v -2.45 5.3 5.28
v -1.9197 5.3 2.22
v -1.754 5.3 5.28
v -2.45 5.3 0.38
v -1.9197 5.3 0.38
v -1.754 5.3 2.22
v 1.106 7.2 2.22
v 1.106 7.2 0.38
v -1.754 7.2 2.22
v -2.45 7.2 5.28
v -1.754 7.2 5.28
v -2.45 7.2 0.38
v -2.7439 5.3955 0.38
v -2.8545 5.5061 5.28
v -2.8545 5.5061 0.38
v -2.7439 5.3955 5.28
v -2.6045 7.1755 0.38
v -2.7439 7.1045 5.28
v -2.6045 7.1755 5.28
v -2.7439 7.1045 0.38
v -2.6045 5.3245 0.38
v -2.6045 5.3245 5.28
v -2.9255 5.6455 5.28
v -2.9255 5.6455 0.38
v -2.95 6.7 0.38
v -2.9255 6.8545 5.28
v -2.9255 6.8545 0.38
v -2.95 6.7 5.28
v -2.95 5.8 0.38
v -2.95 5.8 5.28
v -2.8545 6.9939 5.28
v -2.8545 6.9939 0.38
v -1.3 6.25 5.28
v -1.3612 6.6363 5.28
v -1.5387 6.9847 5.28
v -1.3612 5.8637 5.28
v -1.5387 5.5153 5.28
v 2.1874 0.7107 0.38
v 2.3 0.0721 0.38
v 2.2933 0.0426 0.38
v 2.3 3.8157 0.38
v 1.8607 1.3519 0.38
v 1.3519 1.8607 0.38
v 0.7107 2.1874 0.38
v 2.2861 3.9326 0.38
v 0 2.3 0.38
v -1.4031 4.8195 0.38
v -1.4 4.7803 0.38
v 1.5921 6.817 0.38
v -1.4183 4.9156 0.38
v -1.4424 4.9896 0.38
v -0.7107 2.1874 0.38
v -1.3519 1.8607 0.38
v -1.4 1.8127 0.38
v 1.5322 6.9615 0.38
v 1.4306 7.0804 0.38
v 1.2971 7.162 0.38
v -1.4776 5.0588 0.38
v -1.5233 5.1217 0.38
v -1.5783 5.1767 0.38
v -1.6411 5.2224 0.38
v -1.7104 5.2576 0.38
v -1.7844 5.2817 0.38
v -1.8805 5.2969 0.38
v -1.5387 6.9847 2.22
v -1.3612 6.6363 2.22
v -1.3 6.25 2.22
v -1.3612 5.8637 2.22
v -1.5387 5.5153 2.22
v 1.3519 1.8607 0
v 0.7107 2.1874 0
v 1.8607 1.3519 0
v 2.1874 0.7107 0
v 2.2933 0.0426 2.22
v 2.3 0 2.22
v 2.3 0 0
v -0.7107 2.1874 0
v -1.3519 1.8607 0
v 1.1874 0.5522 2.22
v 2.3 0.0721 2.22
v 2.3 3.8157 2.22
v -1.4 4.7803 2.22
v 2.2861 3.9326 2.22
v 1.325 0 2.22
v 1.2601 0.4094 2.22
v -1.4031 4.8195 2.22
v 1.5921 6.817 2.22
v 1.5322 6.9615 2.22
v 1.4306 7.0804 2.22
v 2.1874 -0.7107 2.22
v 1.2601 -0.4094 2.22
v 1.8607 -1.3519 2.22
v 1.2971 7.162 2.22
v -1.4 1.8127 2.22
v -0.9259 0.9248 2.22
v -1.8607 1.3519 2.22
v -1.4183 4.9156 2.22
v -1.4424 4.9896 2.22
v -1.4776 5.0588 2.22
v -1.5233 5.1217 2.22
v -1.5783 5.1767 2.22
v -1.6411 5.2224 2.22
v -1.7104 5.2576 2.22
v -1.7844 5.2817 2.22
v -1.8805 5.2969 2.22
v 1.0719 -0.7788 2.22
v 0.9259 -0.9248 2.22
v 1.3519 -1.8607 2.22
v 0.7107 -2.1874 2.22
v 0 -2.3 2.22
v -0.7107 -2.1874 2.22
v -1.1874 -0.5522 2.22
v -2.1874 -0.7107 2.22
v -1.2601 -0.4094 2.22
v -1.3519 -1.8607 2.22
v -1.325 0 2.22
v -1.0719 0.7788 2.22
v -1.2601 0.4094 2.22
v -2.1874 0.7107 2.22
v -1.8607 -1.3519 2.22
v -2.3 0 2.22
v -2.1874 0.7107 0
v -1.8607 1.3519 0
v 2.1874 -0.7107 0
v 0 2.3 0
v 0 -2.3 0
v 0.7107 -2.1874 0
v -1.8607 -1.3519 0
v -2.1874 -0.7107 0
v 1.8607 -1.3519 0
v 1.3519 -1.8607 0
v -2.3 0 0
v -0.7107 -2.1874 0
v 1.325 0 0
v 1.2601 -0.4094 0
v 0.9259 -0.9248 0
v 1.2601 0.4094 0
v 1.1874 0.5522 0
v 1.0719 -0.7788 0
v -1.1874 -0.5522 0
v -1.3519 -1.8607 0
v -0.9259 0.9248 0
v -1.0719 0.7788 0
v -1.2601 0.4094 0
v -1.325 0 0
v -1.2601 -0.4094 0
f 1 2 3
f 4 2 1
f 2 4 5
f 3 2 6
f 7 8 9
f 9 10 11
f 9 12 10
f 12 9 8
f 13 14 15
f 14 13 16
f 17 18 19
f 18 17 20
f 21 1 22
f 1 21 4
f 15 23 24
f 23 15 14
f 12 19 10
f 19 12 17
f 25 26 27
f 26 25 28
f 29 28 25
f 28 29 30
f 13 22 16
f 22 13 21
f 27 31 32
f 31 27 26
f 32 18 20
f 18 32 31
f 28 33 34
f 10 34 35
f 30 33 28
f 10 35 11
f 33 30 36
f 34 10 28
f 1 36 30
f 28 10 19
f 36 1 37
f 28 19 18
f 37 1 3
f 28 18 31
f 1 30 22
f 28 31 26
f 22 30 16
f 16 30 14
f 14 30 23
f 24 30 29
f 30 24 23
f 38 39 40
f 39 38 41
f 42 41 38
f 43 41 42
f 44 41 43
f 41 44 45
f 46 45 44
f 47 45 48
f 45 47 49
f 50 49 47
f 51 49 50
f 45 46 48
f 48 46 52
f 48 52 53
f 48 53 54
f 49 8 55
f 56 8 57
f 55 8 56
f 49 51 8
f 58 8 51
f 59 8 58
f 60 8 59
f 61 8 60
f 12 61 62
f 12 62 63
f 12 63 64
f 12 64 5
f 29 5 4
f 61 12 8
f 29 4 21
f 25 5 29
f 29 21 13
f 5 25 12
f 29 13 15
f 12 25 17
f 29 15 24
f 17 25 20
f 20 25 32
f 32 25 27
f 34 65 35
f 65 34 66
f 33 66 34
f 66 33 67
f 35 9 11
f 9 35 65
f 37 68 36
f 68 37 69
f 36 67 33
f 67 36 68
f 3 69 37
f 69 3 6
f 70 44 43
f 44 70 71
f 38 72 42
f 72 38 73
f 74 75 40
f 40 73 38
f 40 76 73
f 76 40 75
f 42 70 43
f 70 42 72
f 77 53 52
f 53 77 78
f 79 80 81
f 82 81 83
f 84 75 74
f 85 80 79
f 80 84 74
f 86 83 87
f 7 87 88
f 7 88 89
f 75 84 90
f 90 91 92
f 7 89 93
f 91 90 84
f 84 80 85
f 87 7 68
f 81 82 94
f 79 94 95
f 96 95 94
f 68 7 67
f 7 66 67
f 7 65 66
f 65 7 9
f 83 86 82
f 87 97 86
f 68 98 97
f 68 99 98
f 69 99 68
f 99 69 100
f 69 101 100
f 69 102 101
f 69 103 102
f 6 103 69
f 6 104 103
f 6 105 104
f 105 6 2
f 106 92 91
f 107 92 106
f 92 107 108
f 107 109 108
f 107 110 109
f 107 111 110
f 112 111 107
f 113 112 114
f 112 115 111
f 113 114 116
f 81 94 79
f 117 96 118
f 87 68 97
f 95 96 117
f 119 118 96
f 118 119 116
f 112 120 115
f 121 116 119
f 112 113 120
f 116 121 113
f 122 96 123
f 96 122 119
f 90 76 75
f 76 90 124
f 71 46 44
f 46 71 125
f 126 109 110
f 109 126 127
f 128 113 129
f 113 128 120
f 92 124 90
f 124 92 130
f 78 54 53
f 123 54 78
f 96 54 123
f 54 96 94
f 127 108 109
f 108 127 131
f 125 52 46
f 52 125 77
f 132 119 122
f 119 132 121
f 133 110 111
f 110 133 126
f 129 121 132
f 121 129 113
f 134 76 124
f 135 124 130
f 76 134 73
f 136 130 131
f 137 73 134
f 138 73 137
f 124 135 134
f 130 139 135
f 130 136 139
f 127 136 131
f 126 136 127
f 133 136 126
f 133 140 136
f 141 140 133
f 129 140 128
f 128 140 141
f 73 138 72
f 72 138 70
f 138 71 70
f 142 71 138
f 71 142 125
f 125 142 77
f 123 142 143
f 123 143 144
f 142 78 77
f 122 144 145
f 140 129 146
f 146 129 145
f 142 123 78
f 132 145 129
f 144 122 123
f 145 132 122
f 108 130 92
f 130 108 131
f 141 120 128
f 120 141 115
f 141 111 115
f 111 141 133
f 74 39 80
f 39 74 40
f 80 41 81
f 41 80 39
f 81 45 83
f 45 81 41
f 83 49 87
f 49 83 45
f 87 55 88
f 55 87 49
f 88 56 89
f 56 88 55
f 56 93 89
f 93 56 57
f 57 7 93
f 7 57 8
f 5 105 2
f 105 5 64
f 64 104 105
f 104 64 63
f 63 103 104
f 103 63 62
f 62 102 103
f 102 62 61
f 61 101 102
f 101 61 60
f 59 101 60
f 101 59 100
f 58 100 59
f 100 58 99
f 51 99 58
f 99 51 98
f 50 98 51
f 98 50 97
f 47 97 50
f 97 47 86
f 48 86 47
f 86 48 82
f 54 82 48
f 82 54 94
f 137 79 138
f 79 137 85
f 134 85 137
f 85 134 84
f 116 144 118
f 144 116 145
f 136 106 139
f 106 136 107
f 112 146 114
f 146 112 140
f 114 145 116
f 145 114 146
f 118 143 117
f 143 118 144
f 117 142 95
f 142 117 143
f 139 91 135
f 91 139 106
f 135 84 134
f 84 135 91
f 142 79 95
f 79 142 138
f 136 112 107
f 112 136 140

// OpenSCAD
// ALPS Plotter coil lever for MCP-40 & others
// François Revol, 2022-12-27

radius = 0.5;

top_radius = 2.5;

// The rotation of the inner key
angle = -10;

$fn = 20;

// measurements (cf. the SVG files)

E0 = 0.38;
E1 = 1.84;
E2 = 4.90;
D1 = 2.65;
D2 = 1.50;
A = 9.5;
B = 3.7;
C = 4.6;
D = 5.25;
E = 1.9;
F = 4.45;
//G = 4.37;
//H = 1.7; = D - B

// the complex shape of the base
poly = [
    [C/2-B, 0],
    [C/2-B, -C/2+A-E],
    [C/2-D, -C/2+A-E],
    [C/2-D, -C/2+A],
    [C/2 - D + F, -C/2+A],
    [C/2, -C/2+A-1.75*E],
    [C/2, 0-radius]
];

translate([0,0,E0]) {
    difference() {
        union() {
            translate([0,0,-E0])
                cylinder(h = E0+E1, d = C);
            linear_extrude(height = E1)
                // funky trick:
                // https://en.wikibooks.org/wiki/OpenSCAD_User_Manual/Tips_and_Tricks#Rounding_polygons
                offset(radius) offset(-radius) offset(-radius) offset(radius)
                    polygon(poly);
            intersection() {
                linear_extrude(height = E2)
                    offset(radius) offset(-radius) offset(-radius) offset(radius)
                        polygon([for (i = [1:4]) poly[i]]);
                translate([C/2-D+/*E/2*/0.4, -C/2+A-E/2, 0]) cylinder(h = E2, d = top_radius);
            }
        }
        translate([0,0,-E0-0.5]) intersection() {
            cylinder(h = E0+E1+1, d = D1);
            rotate([0,0,angle]) translate([0,0,E1]) cube([D1,D2,E0+E1*2], center = true);
        }
    }
}
